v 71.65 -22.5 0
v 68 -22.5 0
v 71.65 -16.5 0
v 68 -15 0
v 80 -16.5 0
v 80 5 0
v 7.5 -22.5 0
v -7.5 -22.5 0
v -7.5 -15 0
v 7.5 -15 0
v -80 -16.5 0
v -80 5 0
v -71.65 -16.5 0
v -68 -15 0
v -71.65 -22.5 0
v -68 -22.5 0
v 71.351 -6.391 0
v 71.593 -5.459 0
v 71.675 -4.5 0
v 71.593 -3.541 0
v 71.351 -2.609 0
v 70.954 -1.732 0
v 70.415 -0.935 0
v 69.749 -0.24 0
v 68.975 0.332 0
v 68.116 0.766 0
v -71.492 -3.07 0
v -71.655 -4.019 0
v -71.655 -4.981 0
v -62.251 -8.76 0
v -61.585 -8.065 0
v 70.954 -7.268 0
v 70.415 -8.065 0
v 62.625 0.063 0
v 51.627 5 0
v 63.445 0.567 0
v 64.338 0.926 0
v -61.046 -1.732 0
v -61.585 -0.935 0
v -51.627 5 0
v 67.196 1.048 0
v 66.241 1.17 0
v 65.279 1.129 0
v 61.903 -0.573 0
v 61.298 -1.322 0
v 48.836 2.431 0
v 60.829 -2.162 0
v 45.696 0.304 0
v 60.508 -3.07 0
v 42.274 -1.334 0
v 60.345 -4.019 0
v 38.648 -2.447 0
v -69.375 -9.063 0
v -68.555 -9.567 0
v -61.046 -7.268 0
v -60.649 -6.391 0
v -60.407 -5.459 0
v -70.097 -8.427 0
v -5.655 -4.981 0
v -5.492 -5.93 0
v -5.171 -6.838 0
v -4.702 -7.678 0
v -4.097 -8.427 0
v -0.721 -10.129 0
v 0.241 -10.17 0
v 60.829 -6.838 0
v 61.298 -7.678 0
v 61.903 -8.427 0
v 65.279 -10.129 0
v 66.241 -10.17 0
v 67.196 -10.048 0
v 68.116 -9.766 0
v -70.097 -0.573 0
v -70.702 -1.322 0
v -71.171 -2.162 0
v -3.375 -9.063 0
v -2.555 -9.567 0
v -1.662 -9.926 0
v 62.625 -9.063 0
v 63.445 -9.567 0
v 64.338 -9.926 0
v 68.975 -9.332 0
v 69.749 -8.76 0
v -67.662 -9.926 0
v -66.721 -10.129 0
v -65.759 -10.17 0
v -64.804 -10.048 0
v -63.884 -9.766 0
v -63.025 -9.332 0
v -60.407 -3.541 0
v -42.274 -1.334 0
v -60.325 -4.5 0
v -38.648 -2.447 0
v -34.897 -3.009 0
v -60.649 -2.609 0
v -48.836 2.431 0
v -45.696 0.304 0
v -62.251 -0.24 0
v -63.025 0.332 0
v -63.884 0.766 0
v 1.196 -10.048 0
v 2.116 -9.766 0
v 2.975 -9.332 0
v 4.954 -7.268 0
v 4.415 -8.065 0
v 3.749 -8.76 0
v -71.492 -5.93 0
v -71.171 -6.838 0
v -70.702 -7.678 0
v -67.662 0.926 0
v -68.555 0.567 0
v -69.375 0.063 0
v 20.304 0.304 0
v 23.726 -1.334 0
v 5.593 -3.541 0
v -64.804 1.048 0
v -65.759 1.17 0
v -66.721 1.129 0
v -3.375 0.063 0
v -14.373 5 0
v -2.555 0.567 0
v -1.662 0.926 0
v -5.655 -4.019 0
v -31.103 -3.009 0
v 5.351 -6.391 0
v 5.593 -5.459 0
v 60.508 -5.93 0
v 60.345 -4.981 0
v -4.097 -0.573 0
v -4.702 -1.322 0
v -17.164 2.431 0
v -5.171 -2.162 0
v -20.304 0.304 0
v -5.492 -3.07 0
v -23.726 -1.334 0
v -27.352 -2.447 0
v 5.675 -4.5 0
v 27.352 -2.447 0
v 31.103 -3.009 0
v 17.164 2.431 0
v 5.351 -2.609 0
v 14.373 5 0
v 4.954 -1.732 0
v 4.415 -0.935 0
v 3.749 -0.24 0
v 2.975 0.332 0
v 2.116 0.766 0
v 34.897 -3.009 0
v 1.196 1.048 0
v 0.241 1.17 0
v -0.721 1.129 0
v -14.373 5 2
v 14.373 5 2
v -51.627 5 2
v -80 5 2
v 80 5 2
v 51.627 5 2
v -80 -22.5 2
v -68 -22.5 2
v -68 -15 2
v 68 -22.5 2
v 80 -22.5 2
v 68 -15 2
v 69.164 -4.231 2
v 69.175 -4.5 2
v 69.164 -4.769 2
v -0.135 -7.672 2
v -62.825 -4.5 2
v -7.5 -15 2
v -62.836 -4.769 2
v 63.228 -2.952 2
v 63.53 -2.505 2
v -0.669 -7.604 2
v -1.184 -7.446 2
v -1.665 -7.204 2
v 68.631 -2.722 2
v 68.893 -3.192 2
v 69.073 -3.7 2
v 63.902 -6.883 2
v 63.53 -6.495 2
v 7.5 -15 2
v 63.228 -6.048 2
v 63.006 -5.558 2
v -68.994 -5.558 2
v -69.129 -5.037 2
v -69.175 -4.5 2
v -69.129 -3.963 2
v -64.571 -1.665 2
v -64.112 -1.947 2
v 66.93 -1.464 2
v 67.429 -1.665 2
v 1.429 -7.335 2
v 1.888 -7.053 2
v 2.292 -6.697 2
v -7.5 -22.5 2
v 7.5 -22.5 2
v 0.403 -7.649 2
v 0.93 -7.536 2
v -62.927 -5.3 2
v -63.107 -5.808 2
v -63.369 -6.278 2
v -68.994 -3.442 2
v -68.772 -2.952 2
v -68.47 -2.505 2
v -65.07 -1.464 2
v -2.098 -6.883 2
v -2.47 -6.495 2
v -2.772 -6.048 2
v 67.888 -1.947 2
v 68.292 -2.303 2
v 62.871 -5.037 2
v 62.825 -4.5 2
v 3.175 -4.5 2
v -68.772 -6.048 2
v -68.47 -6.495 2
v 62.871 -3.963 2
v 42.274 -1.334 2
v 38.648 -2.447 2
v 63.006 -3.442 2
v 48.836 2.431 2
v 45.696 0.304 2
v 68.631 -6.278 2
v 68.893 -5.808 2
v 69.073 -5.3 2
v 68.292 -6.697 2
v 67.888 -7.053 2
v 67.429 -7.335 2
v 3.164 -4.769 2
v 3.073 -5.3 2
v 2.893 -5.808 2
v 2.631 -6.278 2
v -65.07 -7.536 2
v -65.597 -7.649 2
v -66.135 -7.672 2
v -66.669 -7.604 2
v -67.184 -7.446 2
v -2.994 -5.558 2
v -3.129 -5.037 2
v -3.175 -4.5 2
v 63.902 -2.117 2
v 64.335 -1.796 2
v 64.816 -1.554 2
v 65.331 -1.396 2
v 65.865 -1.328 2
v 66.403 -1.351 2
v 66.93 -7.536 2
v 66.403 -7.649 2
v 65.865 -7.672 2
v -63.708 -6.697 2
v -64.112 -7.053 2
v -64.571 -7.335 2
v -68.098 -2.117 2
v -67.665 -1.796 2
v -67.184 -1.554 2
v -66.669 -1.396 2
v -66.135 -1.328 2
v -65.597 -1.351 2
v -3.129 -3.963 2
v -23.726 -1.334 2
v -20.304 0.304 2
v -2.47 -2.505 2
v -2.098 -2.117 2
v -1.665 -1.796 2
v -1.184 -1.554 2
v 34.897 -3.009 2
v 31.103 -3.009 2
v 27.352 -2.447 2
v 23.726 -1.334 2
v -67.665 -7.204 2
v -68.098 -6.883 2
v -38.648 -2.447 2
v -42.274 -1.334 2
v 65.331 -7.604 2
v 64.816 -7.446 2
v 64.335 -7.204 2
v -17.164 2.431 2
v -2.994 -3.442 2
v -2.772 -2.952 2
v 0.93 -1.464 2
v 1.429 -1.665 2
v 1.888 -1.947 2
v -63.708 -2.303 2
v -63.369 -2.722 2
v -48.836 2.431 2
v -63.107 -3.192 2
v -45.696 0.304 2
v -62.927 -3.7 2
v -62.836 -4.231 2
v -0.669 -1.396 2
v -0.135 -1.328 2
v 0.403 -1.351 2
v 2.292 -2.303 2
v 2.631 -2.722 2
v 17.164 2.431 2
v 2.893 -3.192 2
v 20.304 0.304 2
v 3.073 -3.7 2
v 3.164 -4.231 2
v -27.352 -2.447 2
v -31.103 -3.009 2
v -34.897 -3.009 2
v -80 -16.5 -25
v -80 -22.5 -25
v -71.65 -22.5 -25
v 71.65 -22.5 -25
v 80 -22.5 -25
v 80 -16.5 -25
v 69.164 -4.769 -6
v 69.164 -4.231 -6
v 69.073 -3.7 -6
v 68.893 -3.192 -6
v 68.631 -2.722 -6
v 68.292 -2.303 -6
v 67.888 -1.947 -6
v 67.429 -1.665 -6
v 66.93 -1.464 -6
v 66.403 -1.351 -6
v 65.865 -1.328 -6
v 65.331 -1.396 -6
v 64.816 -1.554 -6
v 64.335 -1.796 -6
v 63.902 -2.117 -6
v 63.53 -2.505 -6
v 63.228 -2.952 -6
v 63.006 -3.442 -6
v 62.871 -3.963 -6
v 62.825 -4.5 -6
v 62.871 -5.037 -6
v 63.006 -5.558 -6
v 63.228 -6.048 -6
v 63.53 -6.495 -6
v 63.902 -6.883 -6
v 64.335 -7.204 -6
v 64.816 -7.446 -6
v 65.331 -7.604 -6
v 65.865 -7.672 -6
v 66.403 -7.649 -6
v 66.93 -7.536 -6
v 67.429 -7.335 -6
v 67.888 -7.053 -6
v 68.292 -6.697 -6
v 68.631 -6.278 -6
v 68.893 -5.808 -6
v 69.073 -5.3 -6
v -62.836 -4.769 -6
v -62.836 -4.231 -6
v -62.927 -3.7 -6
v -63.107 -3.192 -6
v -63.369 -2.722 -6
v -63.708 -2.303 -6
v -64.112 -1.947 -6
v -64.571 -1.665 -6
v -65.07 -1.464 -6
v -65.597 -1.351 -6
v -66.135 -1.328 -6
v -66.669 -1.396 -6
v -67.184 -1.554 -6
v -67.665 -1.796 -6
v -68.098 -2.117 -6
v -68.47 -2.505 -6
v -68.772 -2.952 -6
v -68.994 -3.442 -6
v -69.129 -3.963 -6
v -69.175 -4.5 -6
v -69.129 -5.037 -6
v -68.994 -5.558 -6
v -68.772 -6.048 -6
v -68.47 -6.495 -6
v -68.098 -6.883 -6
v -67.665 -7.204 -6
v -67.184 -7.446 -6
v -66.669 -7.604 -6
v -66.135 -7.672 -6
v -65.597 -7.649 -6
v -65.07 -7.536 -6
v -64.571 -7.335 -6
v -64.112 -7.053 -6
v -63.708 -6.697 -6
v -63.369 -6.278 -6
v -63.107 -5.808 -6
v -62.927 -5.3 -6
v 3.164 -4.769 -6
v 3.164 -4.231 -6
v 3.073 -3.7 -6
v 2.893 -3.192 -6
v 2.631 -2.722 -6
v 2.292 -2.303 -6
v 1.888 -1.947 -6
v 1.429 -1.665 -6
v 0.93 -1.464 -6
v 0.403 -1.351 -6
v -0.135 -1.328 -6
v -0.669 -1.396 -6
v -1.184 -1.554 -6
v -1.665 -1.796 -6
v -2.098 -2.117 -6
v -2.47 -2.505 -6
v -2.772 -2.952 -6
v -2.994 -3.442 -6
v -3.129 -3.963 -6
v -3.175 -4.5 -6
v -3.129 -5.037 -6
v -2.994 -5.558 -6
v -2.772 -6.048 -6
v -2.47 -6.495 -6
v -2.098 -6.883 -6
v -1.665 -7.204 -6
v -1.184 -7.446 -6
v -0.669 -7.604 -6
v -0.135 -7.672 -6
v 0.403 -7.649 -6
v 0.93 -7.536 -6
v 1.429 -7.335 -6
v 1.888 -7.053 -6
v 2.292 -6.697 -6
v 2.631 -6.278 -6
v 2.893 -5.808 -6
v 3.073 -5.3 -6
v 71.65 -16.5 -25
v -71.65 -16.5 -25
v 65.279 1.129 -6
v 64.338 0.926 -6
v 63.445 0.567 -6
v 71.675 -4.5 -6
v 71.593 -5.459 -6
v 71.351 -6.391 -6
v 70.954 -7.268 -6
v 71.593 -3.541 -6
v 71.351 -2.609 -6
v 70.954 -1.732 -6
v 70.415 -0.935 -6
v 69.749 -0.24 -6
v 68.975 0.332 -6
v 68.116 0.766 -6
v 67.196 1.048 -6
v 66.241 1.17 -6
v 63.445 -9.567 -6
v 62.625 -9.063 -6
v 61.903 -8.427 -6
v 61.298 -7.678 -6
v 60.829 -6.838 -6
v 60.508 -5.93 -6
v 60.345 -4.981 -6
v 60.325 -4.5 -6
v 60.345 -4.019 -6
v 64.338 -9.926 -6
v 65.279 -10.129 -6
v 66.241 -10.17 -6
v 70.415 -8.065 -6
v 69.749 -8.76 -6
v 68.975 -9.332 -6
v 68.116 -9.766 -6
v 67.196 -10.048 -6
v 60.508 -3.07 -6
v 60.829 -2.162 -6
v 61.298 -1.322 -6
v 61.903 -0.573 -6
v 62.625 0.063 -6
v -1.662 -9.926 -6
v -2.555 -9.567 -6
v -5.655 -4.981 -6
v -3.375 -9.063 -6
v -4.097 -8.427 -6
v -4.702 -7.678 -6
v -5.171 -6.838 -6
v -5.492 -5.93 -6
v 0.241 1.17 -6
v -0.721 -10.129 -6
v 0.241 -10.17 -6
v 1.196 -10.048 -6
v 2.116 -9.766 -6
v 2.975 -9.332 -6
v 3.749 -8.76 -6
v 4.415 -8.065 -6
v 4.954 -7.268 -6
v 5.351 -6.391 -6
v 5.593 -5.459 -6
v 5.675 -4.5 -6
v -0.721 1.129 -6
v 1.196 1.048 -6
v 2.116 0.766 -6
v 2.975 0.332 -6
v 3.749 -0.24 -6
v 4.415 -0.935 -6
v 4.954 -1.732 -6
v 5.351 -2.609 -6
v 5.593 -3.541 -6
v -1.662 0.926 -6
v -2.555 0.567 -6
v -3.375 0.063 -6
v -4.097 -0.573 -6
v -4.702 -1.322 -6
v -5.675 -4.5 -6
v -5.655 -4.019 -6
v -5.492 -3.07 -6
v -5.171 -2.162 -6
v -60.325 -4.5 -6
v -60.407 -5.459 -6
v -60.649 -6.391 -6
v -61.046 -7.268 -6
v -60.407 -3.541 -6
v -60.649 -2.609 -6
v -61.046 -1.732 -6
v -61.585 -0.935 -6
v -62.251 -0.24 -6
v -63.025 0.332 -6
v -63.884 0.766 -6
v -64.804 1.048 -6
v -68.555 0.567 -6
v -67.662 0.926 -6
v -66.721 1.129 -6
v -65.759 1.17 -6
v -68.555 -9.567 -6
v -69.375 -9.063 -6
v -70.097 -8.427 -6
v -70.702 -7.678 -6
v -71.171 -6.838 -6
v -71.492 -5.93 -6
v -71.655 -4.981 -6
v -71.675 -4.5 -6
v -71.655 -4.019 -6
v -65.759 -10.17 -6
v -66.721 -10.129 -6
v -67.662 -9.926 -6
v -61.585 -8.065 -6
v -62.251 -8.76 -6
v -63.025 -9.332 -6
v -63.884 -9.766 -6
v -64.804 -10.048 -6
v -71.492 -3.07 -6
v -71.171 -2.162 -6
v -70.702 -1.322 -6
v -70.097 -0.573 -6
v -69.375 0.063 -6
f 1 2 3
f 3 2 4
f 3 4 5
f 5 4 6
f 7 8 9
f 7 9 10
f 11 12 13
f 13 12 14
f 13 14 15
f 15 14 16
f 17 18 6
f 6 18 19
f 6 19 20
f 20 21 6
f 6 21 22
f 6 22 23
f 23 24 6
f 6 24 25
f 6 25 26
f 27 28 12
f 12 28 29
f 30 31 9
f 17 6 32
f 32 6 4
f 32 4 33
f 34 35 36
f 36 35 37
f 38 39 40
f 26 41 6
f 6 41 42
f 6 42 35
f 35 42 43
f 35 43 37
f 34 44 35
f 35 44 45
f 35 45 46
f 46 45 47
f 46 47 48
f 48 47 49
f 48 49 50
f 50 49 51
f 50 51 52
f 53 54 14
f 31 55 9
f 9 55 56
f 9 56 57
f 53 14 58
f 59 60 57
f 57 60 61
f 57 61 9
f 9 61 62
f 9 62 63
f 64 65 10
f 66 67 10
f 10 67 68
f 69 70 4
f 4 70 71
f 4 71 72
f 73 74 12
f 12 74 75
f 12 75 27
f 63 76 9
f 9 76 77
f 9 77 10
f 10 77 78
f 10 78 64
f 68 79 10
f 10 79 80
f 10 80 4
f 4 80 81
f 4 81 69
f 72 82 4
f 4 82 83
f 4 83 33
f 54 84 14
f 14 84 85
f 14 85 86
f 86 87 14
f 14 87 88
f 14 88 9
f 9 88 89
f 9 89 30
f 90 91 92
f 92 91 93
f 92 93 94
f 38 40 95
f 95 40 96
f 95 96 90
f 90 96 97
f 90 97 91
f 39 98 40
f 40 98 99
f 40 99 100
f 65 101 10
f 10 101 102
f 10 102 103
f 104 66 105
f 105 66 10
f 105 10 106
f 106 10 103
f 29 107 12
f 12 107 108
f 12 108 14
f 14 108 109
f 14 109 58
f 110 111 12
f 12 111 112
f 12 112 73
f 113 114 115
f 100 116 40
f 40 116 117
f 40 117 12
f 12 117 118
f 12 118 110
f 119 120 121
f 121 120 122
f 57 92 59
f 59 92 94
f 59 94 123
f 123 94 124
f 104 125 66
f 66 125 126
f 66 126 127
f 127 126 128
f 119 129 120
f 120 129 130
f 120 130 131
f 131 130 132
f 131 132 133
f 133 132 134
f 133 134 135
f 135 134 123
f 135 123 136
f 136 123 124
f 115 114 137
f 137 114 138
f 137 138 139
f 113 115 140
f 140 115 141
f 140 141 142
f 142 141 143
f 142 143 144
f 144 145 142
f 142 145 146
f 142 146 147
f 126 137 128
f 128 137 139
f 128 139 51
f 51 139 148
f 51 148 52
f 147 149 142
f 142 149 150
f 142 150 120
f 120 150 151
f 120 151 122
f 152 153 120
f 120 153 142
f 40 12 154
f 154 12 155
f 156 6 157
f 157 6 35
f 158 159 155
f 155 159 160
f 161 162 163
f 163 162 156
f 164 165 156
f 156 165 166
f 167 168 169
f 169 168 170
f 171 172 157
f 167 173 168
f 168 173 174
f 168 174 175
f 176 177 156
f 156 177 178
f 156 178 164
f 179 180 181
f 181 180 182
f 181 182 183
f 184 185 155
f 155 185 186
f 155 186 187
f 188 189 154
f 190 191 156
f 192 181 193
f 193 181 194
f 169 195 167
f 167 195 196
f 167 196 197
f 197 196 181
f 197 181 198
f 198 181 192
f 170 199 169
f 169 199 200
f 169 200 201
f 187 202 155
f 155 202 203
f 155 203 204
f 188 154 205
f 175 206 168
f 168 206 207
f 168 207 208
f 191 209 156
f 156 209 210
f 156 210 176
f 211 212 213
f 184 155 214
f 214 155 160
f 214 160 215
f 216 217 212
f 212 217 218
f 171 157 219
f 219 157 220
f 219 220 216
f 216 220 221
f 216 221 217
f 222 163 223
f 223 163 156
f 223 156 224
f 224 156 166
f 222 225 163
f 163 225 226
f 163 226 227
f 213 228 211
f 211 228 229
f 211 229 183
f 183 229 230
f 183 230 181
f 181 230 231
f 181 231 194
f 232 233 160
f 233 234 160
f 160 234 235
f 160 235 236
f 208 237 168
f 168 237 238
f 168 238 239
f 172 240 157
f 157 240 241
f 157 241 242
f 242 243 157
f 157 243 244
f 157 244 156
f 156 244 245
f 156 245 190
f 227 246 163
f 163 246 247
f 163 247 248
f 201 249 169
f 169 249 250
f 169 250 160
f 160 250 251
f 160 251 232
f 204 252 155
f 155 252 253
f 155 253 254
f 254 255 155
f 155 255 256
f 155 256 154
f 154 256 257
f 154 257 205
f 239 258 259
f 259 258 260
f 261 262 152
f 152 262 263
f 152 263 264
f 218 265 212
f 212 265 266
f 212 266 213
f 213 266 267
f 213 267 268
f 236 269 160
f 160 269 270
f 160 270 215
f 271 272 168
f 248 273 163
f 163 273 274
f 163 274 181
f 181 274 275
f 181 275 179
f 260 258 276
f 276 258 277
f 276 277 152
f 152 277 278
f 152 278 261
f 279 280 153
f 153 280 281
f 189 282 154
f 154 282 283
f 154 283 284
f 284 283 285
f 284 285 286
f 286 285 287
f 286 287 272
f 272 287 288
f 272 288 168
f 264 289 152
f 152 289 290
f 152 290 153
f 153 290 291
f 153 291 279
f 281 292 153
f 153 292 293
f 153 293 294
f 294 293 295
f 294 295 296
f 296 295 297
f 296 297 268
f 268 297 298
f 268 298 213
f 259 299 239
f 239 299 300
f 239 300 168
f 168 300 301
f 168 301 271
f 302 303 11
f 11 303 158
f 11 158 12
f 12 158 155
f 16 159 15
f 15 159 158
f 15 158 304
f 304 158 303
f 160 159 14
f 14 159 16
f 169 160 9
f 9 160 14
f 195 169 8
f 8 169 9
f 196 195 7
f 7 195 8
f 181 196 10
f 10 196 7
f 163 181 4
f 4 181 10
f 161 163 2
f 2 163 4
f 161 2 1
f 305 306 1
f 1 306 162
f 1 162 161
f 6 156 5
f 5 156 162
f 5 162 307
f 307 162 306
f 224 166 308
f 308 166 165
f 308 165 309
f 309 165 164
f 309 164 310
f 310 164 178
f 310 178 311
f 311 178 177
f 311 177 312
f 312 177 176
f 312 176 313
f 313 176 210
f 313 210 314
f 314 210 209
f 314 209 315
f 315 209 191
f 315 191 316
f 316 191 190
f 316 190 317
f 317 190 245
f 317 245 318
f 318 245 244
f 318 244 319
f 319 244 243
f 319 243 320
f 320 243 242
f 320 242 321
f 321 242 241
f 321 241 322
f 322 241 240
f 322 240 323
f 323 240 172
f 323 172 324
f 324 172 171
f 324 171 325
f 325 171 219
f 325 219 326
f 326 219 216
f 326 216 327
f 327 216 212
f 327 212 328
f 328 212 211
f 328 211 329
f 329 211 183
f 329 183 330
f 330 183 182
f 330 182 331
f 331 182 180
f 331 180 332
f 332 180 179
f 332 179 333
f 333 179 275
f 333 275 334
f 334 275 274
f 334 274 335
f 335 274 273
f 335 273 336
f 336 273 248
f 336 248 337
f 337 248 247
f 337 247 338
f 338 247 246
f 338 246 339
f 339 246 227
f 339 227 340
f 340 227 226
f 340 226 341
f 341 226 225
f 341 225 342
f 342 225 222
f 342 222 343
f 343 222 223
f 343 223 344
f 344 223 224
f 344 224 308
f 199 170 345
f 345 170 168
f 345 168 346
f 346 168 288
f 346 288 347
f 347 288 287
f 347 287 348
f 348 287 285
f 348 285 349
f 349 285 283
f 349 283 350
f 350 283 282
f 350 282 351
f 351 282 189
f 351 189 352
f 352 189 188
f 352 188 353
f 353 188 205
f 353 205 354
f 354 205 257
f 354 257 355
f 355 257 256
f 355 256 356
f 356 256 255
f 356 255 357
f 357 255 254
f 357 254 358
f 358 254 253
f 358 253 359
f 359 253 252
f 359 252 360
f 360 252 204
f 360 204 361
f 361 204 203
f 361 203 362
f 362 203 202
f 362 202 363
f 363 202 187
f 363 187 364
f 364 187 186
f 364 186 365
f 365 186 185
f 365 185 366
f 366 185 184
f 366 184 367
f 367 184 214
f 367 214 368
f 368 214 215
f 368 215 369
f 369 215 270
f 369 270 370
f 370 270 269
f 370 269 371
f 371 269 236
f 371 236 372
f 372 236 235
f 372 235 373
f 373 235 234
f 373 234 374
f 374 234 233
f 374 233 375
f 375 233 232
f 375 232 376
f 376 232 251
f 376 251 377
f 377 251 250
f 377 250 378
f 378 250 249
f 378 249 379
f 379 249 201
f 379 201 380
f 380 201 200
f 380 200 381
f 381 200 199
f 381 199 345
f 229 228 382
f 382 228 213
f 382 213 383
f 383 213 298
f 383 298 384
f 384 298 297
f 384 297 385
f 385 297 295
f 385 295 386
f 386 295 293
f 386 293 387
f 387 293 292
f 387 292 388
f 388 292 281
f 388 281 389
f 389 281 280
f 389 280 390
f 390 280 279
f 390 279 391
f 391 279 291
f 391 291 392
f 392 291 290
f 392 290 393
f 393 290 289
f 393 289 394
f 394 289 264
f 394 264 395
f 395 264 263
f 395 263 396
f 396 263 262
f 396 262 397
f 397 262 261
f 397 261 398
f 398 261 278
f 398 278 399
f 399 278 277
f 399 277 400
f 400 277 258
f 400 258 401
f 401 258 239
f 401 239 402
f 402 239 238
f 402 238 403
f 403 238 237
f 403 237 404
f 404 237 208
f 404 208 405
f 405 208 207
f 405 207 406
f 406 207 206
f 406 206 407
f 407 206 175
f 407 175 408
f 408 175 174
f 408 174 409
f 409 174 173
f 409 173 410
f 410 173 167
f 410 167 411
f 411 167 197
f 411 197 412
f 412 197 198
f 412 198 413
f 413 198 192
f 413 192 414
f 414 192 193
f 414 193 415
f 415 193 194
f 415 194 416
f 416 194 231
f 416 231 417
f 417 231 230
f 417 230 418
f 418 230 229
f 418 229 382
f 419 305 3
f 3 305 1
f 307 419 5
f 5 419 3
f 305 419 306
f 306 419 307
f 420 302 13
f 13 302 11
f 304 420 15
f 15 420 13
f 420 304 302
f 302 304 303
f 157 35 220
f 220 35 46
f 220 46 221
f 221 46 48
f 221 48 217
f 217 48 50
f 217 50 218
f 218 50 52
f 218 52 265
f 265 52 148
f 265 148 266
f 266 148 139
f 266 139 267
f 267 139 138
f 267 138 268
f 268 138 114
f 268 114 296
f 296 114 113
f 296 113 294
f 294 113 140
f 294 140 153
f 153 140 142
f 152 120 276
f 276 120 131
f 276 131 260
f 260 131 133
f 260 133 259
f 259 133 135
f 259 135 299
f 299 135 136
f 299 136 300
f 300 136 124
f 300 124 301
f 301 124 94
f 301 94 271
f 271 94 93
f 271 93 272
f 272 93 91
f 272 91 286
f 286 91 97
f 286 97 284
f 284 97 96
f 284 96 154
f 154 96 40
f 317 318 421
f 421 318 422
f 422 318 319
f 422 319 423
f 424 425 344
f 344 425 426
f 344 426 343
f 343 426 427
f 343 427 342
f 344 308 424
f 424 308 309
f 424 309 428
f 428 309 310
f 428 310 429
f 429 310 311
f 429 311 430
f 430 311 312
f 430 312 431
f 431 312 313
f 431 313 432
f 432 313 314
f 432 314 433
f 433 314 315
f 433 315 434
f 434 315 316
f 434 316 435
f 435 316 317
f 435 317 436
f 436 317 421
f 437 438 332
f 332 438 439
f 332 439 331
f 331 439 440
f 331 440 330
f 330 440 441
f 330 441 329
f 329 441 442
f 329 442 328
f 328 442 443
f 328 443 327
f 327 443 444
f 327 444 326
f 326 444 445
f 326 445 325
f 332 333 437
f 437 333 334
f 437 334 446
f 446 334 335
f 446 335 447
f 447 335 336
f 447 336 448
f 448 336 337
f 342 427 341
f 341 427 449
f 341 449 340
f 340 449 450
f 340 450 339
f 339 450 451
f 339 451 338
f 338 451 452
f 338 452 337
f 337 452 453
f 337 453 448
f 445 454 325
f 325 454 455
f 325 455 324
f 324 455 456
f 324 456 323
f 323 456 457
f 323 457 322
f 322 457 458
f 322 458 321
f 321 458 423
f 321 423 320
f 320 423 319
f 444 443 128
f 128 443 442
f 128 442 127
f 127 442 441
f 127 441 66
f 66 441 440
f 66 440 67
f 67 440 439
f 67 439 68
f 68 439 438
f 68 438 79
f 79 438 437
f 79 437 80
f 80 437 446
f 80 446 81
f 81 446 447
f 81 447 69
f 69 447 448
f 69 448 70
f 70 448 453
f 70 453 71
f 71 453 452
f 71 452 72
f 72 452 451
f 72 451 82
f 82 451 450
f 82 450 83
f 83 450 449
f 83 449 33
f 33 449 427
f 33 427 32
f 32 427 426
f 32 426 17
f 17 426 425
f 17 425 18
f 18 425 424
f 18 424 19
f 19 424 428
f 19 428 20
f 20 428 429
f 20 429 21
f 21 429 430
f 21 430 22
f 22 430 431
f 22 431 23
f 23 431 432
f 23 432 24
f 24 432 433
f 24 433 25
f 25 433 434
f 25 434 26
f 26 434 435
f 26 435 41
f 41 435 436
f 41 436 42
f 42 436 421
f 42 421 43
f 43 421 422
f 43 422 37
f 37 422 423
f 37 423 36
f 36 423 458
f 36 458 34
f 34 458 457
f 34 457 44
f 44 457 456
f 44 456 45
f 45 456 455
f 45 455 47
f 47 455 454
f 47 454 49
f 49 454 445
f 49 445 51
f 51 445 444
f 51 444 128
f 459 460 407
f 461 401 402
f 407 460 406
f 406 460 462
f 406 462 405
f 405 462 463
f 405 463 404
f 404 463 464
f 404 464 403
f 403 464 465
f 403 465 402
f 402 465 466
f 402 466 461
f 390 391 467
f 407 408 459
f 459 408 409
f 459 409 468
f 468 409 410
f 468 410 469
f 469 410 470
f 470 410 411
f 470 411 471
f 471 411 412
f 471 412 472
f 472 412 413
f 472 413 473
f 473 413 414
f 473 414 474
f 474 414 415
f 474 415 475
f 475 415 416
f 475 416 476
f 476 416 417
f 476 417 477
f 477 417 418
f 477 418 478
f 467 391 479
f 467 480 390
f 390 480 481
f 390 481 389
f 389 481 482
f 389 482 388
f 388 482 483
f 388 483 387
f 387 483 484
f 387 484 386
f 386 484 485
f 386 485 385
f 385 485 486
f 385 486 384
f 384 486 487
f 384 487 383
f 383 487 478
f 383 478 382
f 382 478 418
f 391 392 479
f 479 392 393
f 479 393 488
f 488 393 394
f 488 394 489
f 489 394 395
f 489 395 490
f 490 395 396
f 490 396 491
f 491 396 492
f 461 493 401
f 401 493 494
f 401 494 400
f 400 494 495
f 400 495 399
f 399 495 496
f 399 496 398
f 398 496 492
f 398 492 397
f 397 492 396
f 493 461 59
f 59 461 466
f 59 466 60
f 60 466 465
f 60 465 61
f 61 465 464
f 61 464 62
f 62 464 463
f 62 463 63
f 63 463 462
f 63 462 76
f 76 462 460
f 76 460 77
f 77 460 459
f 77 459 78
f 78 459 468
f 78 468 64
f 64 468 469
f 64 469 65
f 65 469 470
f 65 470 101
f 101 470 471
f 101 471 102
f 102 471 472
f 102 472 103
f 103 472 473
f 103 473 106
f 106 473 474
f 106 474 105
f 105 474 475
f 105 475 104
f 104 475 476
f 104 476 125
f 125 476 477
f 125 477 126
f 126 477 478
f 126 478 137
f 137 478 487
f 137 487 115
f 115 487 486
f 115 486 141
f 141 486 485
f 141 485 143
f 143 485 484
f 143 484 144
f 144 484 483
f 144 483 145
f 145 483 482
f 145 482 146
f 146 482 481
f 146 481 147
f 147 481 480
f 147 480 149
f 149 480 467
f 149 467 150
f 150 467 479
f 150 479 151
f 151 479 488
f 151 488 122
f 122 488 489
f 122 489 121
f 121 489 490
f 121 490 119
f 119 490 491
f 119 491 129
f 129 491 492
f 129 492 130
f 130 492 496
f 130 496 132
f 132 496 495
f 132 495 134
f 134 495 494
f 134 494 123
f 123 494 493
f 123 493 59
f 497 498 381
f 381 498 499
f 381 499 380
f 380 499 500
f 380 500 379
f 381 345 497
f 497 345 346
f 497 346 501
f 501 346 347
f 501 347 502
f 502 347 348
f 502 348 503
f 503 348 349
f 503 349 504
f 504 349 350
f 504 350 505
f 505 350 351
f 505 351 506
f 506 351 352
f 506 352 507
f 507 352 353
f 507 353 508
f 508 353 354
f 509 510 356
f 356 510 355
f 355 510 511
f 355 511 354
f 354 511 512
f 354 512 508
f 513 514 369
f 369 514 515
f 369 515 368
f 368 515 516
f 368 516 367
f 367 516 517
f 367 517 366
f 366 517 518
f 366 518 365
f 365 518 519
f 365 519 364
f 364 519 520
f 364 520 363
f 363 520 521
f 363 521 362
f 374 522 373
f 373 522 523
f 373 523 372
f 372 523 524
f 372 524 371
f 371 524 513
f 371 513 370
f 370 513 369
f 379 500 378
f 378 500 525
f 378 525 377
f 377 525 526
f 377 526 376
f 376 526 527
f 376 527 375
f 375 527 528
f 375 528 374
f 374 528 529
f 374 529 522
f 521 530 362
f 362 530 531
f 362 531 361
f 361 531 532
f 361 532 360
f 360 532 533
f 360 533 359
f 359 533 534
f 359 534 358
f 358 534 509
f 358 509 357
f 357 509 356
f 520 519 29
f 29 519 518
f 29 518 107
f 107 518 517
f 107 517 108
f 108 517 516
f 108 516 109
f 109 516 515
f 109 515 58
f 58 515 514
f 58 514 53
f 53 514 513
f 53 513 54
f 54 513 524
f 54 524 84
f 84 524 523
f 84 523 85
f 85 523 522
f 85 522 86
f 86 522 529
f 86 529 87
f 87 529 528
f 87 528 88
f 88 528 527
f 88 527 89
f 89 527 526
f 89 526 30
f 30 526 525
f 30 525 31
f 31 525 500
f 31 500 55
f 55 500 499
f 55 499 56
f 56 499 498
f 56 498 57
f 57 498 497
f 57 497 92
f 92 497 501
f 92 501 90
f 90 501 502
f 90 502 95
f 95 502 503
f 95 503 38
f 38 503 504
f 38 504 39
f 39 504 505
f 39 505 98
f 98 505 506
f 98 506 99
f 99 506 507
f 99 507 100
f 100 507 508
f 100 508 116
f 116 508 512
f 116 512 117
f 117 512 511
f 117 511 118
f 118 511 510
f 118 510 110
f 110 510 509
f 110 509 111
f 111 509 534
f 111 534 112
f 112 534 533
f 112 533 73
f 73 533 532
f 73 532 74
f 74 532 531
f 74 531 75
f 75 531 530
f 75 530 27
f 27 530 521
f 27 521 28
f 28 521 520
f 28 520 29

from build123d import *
from build123d.topology import SkipClean

# Parameters (mm, degrees)
CROQUIS1_R              = 3.175
SALIENTE_EXTRUIR1_DEPTH = 2
CROQUIS2_W              = 8.35
CROQUIS2_H              = 6
SALIENTE_EXTRUIR2_DEPTH = 25
CORTAR_EXTRUIR1_DEPTH   = 32.5
SALIENTE_EXTRUIR3_START = 6
CROQUIS4_R              = 5.675
CROQUIS4_R_2            = 3.175
SALIENTE_EXTRUIR3_DEPTH = 6


with BuildPart() as part:
    # Croquis1 → Saliente-Extruir1 (new body)
    with BuildSketch(Plane.XY):
        Polygon((7.5, -22.5), (7.5, -15), (68, -15), (68, -22.5), (80, -22.5), (80, 5), (-80, 5), (-80, -22.5), (-68, -22.5), (-68, -15), (-7.5, -15), (-7.5, -22.5), align=None)
        with Locations((-66, -4.5)):
            Circle(CROQUIS1_R, mode=Mode.SUBTRACT)
        with Locations((66, -4.5)):
            Circle(CROQUIS1_R, mode=Mode.SUBTRACT)
        with Locations((0, -4.5)):
            Circle(CROQUIS1_R, mode=Mode.SUBTRACT)
    extrude(amount=SALIENTE_EXTRUIR1_DEPTH)

    # Croquis2 → Saliente-Extruir2 (add)
    with BuildSketch(Plane(origin=(0, 0, 0), x_dir=(-1, 0, 0), z_dir=(0, 0, -1))):
        with Locations((-75.825, -19.5)):
            Rectangle(CROQUIS2_W, CROQUIS2_H)
        with Locations((75.825, -19.5)):
            Rectangle(CROQUIS2_W, CROQUIS2_H)
    extrude(amount=SALIENTE_EXTRUIR2_DEPTH)

    # Croquis3 → Cortar-Extruir1 (cut)
    with BuildSketch(Plane(origin=(0, 0, 0), x_dir=(-1, 0, 0), z_dir=(0, 0, -1))):
        with BuildLine():
            Line((51.626952658, 5), (14.373047342, 5))
            ThreePointArc((14.373047342, 5), (33, -3.079949918), (51.626952658, 5))
        make_face()
        with BuildLine():
            Line((-14.373047342, 5), (-51.626952658, 5))
            ThreePointArc((-51.626952658, 5), (-33, -3.079949918), (-14.373047342, 5))
        make_face()
    extrude(amount=-CORTAR_EXTRUIR1_DEPTH, mode=Mode.SUBTRACT)

    # Croquis4 → Saliente-Extruir3 (add)
    # profile 1 of 3: a face of its own
    with SkipClean():  # the faces are left unmerged after this step: merging them gives an invalid solid
        with BuildSketch(Plane(origin=(0, 0, 0), x_dir=(-1, 0, 0), z_dir=(0, 0, -1)).offset(SALIENTE_EXTRUIR3_START)):
            with Locations(Location((-66, -4.5, 0), (0, 0, 180))):
                Circle(CROQUIS4_R)
            with Locations((-66, -4.5)):
                Circle(CROQUIS4_R_2, mode=Mode.SUBTRACT)
        # profile 2 of 3: a face of its own
        with BuildSketch(Plane(origin=(0, 0, 0), x_dir=(-1, 0, 0), z_dir=(0, 0, -1)).offset(SALIENTE_EXTRUIR3_START)):
            with Locations(Location((0, -4.5, 0), (0, 0, 180))):
                Circle(CROQUIS4_R)
            with Locations((0, -4.5)):
                Circle(CROQUIS4_R_2, mode=Mode.SUBTRACT)
        # profile 3 of 3: a face of its own
        with BuildSketch(Plane(origin=(0, 0, 0), x_dir=(-1, 0, 0), z_dir=(0, 0, -1)).offset(SALIENTE_EXTRUIR3_START)):
            with Locations(Location((66, -4.5, 0), (0, 0, 180))):
                Circle(CROQUIS4_R)
            with Locations((66, -4.5)):
                Circle(CROQUIS4_R_2, mode=Mode.SUBTRACT)
        extrude(amount=-SALIENTE_EXTRUIR3_DEPTH)


solid = part.part
